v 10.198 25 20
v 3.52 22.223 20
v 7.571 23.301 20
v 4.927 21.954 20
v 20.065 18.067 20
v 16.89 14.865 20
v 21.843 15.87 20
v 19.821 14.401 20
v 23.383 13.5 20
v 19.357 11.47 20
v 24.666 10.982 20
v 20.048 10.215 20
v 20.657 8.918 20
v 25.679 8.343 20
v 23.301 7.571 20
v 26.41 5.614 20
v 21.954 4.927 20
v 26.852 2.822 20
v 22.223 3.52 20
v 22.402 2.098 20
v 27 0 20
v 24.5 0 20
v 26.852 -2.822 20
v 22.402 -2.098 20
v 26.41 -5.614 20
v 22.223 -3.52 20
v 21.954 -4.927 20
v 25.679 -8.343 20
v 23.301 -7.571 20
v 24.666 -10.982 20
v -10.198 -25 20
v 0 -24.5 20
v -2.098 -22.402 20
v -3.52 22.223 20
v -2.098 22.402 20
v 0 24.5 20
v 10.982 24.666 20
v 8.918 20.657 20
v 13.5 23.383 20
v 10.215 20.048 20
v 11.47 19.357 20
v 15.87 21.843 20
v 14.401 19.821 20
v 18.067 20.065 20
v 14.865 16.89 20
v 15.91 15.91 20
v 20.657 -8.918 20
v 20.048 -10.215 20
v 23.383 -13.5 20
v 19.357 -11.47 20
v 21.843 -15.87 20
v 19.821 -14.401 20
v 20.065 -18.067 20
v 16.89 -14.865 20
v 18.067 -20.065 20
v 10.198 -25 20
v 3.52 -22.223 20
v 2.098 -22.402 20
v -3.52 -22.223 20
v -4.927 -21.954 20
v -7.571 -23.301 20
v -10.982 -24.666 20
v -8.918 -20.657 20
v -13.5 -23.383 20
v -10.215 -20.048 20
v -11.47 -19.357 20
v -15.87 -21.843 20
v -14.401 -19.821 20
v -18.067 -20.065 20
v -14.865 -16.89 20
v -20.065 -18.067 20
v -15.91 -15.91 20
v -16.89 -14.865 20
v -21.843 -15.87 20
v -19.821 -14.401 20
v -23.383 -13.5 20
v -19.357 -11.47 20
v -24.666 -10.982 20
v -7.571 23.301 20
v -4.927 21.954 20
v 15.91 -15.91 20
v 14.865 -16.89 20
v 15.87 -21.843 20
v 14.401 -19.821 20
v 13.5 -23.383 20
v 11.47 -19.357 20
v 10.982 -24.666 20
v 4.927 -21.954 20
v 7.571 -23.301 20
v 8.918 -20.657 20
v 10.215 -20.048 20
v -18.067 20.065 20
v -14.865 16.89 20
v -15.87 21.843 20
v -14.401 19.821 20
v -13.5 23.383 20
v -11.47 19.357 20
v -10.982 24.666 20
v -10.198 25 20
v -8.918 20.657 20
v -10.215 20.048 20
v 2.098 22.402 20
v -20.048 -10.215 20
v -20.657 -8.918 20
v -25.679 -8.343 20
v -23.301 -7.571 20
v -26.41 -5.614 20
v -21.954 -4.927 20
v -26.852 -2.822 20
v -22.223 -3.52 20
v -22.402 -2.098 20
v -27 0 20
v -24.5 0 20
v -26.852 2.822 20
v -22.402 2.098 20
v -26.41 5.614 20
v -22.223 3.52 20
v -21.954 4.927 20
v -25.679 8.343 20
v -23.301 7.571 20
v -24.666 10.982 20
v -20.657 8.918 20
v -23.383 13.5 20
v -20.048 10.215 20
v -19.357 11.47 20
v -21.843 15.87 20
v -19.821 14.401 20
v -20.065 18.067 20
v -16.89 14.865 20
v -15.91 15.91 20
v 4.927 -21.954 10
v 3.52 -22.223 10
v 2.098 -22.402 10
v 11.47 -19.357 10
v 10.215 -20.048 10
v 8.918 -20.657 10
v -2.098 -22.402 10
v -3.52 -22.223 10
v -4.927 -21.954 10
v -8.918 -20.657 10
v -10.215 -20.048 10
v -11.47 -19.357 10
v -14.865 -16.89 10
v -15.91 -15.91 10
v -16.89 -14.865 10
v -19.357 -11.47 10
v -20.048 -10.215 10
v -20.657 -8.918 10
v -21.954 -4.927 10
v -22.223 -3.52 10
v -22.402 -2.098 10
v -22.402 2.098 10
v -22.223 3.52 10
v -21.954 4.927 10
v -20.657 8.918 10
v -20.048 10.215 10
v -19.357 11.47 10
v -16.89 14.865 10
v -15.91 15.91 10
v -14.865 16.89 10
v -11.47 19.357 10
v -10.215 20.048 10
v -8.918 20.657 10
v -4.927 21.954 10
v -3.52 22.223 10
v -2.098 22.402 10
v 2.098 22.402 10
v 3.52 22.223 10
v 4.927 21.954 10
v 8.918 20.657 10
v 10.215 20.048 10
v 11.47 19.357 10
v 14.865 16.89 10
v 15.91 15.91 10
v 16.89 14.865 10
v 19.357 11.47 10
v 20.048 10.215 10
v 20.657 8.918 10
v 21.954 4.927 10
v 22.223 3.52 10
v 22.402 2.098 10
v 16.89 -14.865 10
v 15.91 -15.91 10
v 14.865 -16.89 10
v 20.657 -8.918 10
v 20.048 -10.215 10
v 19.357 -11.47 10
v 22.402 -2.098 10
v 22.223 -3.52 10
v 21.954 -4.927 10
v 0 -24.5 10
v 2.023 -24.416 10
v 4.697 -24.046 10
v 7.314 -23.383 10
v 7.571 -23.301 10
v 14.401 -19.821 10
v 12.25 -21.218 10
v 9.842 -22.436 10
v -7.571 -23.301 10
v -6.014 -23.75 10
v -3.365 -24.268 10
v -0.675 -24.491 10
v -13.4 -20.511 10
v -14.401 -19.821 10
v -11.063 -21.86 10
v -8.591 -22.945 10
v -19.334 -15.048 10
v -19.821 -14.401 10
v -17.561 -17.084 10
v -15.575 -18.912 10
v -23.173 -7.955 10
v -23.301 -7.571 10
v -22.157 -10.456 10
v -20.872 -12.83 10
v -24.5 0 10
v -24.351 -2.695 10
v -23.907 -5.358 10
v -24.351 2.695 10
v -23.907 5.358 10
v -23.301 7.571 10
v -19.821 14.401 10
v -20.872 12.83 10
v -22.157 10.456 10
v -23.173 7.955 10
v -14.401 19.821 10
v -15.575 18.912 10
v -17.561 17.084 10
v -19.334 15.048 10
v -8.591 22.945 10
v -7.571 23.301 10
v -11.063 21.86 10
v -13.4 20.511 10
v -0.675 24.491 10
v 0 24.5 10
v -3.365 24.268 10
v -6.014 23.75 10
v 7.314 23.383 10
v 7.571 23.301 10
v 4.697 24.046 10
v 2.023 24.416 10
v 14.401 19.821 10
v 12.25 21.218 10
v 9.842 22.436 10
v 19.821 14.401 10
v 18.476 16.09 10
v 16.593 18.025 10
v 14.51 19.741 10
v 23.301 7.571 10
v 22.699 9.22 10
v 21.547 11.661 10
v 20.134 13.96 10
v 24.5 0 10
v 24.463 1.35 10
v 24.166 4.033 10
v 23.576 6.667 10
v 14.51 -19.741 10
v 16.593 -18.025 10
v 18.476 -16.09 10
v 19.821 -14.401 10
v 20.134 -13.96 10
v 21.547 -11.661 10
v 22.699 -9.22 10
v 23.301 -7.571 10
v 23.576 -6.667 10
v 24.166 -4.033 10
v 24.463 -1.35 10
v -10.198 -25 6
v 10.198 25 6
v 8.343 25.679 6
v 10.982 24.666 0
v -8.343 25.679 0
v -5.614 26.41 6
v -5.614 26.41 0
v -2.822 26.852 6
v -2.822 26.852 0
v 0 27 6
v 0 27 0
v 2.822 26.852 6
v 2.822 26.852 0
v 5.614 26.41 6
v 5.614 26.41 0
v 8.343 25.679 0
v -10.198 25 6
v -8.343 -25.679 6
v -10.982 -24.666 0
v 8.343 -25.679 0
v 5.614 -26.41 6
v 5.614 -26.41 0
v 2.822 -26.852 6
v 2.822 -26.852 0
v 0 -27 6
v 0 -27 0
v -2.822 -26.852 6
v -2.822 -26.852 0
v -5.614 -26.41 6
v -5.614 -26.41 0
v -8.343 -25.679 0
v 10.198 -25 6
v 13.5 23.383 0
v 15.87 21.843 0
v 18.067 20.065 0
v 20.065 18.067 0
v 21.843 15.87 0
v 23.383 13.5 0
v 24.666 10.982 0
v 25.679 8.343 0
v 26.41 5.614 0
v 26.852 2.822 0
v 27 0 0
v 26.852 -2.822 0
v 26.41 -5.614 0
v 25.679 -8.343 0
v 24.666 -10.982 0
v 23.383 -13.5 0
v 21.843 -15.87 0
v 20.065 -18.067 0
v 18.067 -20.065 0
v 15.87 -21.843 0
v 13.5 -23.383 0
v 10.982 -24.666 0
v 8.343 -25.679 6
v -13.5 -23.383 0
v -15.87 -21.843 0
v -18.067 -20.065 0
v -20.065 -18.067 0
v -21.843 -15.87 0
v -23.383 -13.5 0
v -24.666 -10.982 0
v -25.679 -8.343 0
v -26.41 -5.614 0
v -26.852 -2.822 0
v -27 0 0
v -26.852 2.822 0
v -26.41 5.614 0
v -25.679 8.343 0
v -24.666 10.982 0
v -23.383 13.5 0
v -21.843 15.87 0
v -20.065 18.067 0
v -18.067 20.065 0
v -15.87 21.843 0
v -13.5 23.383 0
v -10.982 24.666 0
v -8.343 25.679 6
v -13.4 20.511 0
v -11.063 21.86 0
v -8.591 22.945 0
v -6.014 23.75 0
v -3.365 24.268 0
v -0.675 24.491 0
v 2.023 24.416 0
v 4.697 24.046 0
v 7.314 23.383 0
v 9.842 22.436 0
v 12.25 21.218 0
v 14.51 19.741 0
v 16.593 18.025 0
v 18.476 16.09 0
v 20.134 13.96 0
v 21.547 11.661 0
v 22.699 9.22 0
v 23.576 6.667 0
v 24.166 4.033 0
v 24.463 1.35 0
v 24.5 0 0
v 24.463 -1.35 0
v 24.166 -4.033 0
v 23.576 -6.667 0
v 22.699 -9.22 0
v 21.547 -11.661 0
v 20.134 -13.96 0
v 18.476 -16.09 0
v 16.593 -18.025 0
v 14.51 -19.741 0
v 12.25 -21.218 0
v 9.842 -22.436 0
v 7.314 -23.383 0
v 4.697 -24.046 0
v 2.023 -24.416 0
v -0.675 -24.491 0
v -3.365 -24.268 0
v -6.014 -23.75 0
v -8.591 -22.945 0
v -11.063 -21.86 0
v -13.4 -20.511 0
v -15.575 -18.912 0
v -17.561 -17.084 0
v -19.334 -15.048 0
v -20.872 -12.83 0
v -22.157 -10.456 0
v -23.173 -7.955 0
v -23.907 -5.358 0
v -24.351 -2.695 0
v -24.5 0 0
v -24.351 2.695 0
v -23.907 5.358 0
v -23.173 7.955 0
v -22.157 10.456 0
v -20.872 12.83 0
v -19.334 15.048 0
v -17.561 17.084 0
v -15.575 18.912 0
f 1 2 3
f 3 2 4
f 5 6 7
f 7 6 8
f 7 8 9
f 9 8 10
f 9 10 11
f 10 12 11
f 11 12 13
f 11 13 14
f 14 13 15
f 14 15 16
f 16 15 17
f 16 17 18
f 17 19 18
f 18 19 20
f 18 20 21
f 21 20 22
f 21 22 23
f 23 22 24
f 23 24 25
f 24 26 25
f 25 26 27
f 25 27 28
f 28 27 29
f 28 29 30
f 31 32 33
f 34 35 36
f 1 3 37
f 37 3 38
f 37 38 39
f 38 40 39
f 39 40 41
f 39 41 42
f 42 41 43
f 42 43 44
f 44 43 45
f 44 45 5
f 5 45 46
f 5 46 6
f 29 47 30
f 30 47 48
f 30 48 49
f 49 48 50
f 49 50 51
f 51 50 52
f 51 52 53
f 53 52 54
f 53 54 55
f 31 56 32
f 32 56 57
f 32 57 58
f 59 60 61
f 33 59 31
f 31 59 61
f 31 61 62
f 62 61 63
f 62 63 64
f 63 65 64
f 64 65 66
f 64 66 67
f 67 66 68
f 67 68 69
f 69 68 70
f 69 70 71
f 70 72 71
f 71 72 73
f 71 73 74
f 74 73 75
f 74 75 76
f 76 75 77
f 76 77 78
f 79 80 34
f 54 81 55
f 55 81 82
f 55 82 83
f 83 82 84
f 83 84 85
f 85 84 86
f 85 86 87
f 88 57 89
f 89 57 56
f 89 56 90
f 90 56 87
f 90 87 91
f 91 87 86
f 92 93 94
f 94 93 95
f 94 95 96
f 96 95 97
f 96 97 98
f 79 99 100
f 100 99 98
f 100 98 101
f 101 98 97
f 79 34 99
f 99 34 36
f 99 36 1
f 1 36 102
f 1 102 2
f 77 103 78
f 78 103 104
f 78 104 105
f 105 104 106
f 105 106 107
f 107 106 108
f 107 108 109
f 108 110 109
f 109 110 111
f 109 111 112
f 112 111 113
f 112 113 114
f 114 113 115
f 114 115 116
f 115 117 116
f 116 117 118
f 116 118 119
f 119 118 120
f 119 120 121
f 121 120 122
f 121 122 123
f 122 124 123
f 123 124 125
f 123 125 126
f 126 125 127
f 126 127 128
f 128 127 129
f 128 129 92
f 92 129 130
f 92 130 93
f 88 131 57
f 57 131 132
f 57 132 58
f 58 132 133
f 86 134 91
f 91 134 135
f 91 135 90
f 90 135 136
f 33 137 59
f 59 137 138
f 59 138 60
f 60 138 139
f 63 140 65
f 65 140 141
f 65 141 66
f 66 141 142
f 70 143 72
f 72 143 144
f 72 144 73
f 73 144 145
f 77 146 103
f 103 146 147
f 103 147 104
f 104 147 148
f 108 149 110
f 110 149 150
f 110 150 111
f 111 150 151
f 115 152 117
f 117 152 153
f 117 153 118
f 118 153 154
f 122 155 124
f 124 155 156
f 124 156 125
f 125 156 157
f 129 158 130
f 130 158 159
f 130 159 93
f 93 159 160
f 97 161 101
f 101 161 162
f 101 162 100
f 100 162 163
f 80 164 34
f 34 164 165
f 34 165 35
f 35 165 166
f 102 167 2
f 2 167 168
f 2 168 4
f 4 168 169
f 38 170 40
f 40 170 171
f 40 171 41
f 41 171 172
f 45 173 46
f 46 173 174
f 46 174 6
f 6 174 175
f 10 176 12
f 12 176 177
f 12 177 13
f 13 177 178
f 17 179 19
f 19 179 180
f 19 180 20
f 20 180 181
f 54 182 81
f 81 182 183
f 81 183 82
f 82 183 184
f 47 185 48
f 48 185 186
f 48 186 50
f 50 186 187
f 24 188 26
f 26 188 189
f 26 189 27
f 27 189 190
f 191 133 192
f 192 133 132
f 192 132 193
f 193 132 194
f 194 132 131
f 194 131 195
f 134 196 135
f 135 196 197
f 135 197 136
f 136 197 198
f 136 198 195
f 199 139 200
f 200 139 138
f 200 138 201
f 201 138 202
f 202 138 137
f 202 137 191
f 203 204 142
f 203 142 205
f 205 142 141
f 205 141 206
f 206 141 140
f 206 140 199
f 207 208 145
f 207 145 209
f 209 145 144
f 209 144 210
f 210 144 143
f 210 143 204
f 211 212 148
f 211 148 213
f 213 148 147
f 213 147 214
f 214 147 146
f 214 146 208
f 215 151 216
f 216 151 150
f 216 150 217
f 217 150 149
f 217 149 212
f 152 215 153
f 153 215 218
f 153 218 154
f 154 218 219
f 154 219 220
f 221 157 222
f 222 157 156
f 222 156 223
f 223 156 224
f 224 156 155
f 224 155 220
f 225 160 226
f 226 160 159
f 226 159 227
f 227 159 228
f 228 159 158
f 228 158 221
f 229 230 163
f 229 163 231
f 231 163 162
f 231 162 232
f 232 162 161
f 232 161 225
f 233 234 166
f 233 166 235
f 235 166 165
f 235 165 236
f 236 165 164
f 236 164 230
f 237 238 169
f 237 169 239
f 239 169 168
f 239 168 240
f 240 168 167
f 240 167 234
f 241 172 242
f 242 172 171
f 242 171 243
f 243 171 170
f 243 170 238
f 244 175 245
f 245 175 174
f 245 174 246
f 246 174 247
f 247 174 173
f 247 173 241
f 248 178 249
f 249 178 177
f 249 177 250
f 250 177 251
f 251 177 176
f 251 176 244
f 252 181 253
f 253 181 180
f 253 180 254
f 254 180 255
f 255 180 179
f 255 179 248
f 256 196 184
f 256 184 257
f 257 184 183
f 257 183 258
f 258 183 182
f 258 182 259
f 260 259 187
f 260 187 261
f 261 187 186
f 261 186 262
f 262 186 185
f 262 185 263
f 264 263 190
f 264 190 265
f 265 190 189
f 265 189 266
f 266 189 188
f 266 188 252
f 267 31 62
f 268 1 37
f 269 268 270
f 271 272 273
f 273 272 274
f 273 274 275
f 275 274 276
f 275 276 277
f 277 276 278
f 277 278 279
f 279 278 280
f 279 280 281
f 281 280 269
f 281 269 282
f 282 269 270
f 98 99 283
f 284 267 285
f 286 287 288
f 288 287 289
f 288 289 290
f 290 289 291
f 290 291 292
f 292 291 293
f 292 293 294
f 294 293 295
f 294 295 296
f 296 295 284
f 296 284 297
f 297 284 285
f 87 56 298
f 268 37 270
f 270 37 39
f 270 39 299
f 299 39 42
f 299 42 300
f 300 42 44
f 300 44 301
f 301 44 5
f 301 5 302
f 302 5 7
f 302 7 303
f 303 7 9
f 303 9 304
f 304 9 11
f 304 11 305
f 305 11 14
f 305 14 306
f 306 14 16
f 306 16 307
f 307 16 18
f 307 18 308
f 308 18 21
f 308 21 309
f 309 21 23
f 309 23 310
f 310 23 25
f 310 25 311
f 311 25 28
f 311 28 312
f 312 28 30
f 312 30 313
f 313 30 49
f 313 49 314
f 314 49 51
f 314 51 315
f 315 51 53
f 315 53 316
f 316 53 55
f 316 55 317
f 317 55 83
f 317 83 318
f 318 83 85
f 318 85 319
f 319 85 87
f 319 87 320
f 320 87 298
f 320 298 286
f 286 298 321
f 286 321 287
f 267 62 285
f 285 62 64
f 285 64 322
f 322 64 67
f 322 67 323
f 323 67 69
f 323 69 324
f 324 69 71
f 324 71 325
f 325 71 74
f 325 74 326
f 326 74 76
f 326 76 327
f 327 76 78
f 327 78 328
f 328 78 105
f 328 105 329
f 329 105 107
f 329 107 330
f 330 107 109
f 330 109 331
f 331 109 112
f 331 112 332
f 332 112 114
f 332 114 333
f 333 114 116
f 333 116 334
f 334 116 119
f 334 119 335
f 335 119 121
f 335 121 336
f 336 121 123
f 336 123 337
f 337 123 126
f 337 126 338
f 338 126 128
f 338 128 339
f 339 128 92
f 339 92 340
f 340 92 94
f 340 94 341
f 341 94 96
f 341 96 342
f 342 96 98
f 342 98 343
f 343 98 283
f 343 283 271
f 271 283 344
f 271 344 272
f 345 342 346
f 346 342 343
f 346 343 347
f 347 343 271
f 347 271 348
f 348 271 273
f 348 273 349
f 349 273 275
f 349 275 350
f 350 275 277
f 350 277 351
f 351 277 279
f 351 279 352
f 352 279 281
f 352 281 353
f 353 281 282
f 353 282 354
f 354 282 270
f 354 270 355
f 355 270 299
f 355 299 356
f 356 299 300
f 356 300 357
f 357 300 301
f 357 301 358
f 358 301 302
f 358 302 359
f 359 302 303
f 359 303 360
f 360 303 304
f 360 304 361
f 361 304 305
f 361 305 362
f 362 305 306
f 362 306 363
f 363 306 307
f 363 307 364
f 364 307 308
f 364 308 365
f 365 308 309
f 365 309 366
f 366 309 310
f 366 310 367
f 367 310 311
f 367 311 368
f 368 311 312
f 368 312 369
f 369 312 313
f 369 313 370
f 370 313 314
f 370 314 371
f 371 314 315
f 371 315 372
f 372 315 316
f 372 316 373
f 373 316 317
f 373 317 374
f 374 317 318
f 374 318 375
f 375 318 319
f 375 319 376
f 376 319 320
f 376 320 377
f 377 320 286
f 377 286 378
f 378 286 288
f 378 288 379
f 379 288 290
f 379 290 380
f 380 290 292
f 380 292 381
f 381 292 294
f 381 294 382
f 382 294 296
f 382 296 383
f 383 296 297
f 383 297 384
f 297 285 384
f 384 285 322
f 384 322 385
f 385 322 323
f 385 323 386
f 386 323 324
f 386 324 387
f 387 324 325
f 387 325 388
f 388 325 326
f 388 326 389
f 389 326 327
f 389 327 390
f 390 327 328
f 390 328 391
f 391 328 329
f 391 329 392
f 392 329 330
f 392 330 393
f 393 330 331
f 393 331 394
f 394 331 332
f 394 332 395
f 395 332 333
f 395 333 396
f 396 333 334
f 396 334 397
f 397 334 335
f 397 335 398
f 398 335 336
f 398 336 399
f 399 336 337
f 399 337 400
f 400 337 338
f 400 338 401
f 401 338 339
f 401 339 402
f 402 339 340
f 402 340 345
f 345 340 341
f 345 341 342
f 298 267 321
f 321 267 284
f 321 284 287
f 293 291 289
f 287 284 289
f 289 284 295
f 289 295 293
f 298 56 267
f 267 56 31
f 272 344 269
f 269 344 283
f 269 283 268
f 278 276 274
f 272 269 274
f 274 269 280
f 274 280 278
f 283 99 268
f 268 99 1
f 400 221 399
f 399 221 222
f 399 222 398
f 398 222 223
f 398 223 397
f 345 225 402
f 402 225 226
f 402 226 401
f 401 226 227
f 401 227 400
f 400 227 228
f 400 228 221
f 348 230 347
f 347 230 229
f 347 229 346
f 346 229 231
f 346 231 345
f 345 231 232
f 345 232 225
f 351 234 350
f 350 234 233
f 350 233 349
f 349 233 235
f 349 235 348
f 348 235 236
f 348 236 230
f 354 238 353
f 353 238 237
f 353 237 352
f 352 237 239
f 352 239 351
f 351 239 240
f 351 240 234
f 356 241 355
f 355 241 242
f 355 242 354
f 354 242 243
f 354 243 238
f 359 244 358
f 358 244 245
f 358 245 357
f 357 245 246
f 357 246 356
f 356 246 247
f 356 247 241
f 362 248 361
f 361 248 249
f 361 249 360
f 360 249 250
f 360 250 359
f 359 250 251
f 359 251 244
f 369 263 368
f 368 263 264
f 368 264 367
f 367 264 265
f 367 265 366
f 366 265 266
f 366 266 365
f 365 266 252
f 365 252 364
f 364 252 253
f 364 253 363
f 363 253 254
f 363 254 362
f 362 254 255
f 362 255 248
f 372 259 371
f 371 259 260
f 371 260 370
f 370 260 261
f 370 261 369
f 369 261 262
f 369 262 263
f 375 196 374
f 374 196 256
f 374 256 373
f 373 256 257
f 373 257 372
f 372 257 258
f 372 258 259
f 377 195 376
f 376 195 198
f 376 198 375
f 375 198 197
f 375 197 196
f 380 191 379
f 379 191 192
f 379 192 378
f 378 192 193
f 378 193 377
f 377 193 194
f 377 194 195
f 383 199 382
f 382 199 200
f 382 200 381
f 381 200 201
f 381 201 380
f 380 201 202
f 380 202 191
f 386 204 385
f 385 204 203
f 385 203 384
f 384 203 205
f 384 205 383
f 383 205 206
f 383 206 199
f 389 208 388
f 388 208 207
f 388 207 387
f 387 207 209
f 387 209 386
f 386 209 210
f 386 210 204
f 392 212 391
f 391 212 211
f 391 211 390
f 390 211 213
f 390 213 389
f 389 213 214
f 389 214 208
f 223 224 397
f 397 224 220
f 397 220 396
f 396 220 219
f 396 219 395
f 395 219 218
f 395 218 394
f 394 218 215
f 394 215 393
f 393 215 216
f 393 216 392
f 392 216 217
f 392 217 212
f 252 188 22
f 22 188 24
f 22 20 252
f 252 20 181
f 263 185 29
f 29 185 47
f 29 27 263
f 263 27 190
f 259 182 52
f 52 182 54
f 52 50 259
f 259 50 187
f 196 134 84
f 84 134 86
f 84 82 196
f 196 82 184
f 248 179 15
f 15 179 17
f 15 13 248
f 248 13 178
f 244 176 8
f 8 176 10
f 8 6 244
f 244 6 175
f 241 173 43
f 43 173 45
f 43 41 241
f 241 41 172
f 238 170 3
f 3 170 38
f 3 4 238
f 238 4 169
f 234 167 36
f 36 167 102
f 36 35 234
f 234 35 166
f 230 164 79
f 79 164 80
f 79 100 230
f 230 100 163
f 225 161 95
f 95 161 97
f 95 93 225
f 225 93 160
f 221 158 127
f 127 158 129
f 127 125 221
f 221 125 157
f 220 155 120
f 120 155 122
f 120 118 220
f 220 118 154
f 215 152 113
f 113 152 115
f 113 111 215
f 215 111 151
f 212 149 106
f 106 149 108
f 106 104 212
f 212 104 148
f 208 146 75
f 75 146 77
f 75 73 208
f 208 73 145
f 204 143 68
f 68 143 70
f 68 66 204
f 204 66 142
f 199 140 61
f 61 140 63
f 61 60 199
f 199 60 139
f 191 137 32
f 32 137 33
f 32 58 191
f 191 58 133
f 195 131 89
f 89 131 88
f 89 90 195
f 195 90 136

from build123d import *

# Parameters (mm, degrees)
SKETCH1_R      = 27
RING_DEPTH     = 20
SKETCH2_W      = 58
SKETCH2_H      = 4
FLATS_DEPTH    = 14
SKETCH3_R      = 22.5
BORE_DEPTH     = 20
SKETCH4_R      = 24.5
BORE_LOW_DEPTH = 10
TEETH_DEPTH    = 10


with BuildPart() as part:
    # Sketch1 → Ring (new body)
    with BuildSketch(Plane.XY):
        Circle(SKETCH1_R)
    extrude(amount=RING_DEPTH)

    # Sketch2 → Flats (cut)
    with BuildSketch(Plane.XY.offset(6)):
        with Locations((0, 27)):
            Rectangle(SKETCH2_W, SKETCH2_H)
        with Locations((0, -27)):
            Rectangle(SKETCH2_W, SKETCH2_H)
    extrude(amount=FLATS_DEPTH, mode=Mode.SUBTRACT)

    # Sketch3 → Bore (cut)
    with BuildSketch(Plane.XY):
        Circle(SKETCH3_R)
    extrude(amount=BORE_DEPTH, mode=Mode.SUBTRACT)

    # Sketch4 → Bore_low (cut)
    with BuildSketch(Plane.XY):
        Circle(SKETCH4_R)
    extrude(amount=BORE_LOW_DEPTH, mode=Mode.SUBTRACT)

    # Sketch5 → Teeth (cut)
    with BuildSketch(Plane.XY.offset(10)):
        Polygon((24.5, 0), (21.5, 3), (21.5, -3), align=None)
        Polygon((23.300884649, 7.570916362), (19.520664117, 9.497034928), (21.374766083, 3.79069583), align=None)
        Polygon((19.820916362, 14.400738681), (15.630509622, 15.064433907), (19.157221136, 10.210331941), align=None)
        Polygon((14.400738681, 19.820916362), (10.210331941, 19.157221136), (15.064433907, 15.630509622), align=None)
        Polygon((7.570916362, 23.300884649), (3.79069583, 21.374766083), (9.497034928, 19.520664117), align=None)
        Polygon((0, 24.5), (-3, 21.5), (3, 21.5), align=None)
        Polygon((-7.570916362, 23.300884649), (-9.497034928, 19.520664117), (-3.79069583, 21.374766083), align=None)
        Polygon((-14.400738681, 19.820916362), (-15.064433907, 15.630509622), (-10.210331941, 19.157221136), align=None)
        Polygon((-19.820916362, 14.400738681), (-19.157221136, 10.210331941), (-15.630509622, 15.064433907), align=None)
        Polygon((-23.300884649, 7.570916362), (-21.374766083, 3.79069583), (-19.520664117, 9.497034928), align=None)
        Polygon((-24.5, 0), (-21.5, -3), (-21.5, 3), align=None)
        Polygon((-23.300884649, -7.570916362), (-19.520664117, -9.497034928), (-21.374766083, -3.79069583), align=None)
        Polygon((-19.820916362, -14.400738681), (-15.630509622, -15.064433907), (-19.157221136, -10.210331941), align=None)
        Polygon((-14.400738681, -19.820916362), (-10.210331941, -19.157221136), (-15.064433907, -15.630509622), align=None)
        Polygon((-7.570916362, -23.300884649), (-3.79069583, -21.374766083), (-9.497034928, -19.520664117), align=None)
        Polygon((0, -24.5), (3, -21.5), (-3, -21.5), align=None)
        Polygon((7.570916362, -23.300884649), (9.497034928, -19.520664117), (3.79069583, -21.374766083), align=None)
        Polygon((14.400738681, -19.820916362), (15.064433907, -15.630509622), (10.210331941, -19.157221136), align=None)
        Polygon((19.820916362, -14.400738681), (19.157221136, -10.210331941), (15.630509622, -15.064433907), align=None)
        Polygon((23.300884649, -7.570916362), (21.374766083, -3.79069583), (19.520664117, -9.497034928), align=None)
    extrude(amount=TEETH_DEPTH, mode=Mode.SUBTRACT)


solid = part.part
